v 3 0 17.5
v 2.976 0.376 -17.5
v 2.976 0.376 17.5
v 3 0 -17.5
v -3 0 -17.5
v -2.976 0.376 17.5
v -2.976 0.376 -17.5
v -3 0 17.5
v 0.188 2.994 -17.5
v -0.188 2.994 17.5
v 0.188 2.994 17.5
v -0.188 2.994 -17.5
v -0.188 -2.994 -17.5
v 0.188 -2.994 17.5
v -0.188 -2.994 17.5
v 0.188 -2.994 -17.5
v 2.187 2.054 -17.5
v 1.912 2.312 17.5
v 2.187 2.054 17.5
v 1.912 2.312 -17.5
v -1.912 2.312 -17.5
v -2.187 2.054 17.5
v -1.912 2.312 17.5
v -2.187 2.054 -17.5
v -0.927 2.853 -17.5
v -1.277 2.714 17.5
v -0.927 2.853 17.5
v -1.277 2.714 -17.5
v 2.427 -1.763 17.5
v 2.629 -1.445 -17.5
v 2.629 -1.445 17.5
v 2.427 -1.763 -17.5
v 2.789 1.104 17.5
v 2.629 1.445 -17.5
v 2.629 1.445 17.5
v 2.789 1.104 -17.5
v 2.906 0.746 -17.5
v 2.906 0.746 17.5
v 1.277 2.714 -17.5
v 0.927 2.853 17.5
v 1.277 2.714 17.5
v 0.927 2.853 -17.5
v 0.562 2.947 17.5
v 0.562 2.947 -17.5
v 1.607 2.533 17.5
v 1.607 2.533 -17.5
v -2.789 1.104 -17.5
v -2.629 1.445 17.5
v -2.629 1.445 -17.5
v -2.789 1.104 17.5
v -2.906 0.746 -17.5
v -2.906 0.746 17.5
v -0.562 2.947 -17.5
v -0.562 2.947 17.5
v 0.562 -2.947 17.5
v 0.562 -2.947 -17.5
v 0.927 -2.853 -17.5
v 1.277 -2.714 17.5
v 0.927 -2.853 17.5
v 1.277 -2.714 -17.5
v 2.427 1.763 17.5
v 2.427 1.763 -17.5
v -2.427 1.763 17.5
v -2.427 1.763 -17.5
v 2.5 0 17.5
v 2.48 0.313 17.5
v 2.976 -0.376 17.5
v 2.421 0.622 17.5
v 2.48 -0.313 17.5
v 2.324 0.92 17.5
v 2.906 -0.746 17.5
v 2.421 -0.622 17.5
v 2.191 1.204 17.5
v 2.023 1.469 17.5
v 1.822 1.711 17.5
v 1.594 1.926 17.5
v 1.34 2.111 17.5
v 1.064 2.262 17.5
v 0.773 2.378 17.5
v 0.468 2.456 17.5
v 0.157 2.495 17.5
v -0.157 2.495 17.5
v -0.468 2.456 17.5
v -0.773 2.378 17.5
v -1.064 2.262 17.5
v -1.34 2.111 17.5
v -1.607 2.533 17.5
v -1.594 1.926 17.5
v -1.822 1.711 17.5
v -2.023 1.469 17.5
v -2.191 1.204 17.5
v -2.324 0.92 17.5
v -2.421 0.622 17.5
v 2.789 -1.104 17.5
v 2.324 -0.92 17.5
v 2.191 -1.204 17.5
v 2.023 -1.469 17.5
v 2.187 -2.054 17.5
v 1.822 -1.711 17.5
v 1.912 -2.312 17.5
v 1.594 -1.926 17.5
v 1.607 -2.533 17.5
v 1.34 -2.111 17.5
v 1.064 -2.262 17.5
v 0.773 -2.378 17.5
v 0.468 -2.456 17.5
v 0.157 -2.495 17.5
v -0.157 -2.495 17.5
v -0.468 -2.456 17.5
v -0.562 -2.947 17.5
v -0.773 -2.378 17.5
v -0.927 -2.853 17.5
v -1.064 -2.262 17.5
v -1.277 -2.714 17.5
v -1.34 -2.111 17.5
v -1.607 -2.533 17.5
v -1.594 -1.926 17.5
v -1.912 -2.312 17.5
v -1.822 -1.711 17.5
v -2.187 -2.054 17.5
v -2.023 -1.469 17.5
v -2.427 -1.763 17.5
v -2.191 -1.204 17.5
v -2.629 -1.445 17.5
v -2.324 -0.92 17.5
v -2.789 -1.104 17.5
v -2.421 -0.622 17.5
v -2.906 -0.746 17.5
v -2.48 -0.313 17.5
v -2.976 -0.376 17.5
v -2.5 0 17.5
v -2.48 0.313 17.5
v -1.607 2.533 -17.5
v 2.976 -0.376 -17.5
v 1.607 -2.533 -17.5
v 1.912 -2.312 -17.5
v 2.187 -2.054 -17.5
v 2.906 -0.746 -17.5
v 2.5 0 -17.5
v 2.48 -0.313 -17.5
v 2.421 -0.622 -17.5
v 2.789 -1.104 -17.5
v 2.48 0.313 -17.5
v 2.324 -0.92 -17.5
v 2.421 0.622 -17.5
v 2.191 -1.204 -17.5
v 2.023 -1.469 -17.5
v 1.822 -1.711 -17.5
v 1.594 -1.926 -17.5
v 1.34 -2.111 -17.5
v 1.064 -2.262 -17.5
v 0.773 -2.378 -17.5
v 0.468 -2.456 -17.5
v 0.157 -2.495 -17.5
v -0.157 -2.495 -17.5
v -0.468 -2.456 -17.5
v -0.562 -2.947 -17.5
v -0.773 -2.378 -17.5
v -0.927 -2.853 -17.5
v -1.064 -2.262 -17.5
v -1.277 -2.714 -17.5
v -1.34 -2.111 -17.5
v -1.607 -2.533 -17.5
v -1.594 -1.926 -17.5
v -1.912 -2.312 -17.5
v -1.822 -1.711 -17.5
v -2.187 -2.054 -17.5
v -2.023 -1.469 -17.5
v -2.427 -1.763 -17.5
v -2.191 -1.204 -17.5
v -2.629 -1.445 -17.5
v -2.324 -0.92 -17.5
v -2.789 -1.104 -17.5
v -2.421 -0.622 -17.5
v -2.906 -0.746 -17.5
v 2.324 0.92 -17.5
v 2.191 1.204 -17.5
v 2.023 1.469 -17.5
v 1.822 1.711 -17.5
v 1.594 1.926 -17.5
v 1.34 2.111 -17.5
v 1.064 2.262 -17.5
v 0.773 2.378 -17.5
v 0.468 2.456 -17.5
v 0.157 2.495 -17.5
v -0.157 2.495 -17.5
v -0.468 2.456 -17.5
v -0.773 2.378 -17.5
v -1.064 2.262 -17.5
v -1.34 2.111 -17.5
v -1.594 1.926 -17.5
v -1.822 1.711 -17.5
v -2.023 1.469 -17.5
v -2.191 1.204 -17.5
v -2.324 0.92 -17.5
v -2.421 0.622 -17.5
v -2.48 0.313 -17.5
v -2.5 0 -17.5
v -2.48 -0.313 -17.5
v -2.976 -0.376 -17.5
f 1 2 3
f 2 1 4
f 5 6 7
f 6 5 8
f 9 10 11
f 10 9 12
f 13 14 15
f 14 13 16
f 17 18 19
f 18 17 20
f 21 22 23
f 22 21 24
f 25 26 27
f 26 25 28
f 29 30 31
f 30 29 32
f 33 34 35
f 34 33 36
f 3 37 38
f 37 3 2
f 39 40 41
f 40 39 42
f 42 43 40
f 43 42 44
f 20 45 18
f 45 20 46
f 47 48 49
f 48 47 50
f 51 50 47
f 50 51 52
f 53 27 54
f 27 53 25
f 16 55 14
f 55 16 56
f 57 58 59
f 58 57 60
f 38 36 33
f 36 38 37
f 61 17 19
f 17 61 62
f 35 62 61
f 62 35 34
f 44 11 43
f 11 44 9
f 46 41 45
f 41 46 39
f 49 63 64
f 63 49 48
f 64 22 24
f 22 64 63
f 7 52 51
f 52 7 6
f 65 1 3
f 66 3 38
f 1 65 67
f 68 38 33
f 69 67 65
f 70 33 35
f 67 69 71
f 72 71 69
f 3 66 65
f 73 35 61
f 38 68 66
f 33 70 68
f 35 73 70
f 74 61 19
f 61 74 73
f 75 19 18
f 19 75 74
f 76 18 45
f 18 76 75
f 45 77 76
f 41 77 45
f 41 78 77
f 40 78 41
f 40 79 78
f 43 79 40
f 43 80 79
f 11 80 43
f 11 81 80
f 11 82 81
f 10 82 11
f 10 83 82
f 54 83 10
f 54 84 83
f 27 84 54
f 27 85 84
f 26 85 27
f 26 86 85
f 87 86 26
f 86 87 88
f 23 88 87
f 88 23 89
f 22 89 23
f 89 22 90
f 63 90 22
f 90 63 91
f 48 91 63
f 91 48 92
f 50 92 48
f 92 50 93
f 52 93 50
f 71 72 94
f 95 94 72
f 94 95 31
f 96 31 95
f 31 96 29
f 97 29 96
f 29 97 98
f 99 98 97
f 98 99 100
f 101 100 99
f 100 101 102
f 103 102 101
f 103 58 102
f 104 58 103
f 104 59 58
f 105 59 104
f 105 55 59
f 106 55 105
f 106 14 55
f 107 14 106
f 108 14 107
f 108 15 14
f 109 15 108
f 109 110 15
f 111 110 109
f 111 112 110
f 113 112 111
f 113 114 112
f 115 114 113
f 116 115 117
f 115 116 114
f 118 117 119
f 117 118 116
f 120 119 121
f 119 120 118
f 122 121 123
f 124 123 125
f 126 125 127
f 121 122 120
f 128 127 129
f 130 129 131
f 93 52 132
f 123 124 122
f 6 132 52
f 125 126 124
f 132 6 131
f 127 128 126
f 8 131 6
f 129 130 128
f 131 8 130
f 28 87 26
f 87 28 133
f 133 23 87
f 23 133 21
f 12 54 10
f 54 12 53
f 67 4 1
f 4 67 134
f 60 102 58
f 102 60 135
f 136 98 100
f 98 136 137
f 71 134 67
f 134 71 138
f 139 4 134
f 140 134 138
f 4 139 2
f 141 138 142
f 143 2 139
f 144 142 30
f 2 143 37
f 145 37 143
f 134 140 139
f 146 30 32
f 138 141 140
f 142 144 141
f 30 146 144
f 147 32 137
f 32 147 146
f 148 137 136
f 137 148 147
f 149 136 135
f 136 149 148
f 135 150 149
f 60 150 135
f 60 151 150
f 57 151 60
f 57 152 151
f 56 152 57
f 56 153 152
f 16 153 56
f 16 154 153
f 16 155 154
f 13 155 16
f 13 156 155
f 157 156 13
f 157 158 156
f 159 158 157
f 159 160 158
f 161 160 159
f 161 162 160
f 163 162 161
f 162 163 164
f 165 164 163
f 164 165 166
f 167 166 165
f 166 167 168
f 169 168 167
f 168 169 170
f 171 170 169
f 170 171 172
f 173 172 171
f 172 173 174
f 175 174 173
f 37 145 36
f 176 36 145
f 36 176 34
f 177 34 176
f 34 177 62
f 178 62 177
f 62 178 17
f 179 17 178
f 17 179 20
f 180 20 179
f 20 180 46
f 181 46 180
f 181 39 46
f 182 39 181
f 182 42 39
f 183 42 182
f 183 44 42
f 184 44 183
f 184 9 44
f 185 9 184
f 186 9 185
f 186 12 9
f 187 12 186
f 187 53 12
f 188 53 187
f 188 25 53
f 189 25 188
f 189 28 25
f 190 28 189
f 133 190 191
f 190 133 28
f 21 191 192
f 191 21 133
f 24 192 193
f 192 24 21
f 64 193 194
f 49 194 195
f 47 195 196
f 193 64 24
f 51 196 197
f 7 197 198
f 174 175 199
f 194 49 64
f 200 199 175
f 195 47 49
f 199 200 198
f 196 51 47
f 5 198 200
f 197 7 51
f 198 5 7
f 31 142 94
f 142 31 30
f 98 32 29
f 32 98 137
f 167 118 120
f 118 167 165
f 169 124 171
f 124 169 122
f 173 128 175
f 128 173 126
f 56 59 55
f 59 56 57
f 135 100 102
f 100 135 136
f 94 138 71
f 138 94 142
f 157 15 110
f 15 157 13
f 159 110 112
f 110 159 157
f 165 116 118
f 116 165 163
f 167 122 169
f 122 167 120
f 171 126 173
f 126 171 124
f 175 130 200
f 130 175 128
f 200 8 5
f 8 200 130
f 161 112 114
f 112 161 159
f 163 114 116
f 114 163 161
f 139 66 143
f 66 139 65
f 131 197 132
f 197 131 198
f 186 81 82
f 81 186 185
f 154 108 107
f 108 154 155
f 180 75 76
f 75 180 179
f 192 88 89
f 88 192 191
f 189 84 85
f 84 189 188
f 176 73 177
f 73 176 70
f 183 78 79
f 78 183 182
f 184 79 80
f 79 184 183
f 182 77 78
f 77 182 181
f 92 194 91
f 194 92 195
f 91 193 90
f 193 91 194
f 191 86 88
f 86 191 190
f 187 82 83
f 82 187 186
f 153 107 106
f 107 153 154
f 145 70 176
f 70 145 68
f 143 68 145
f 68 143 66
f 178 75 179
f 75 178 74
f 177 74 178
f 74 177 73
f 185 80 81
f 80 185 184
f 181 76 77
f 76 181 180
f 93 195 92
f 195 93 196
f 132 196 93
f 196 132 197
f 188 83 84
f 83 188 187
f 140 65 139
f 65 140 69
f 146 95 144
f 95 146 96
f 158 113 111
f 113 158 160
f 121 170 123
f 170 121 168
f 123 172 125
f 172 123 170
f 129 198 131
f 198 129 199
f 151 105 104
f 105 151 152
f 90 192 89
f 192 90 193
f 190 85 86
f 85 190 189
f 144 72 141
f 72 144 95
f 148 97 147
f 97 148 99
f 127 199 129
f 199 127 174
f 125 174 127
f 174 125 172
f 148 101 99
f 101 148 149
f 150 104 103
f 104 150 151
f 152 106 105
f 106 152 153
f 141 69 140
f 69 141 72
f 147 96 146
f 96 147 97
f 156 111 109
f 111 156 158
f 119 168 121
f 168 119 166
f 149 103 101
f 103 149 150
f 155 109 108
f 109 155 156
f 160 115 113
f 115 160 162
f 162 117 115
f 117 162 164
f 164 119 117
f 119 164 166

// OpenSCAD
$fn = 50;


difference() {
	union() {
		translate(v = [0, 0, -17.5000000000]) {
			cylinder(h = 35, r = 3.0000000000);
		}
	}
	union() {
		translate(v = [0, 0, -100.0000000000]) {
			cylinder(h = 200, r = 2.5000000000);
		}
	}
}
